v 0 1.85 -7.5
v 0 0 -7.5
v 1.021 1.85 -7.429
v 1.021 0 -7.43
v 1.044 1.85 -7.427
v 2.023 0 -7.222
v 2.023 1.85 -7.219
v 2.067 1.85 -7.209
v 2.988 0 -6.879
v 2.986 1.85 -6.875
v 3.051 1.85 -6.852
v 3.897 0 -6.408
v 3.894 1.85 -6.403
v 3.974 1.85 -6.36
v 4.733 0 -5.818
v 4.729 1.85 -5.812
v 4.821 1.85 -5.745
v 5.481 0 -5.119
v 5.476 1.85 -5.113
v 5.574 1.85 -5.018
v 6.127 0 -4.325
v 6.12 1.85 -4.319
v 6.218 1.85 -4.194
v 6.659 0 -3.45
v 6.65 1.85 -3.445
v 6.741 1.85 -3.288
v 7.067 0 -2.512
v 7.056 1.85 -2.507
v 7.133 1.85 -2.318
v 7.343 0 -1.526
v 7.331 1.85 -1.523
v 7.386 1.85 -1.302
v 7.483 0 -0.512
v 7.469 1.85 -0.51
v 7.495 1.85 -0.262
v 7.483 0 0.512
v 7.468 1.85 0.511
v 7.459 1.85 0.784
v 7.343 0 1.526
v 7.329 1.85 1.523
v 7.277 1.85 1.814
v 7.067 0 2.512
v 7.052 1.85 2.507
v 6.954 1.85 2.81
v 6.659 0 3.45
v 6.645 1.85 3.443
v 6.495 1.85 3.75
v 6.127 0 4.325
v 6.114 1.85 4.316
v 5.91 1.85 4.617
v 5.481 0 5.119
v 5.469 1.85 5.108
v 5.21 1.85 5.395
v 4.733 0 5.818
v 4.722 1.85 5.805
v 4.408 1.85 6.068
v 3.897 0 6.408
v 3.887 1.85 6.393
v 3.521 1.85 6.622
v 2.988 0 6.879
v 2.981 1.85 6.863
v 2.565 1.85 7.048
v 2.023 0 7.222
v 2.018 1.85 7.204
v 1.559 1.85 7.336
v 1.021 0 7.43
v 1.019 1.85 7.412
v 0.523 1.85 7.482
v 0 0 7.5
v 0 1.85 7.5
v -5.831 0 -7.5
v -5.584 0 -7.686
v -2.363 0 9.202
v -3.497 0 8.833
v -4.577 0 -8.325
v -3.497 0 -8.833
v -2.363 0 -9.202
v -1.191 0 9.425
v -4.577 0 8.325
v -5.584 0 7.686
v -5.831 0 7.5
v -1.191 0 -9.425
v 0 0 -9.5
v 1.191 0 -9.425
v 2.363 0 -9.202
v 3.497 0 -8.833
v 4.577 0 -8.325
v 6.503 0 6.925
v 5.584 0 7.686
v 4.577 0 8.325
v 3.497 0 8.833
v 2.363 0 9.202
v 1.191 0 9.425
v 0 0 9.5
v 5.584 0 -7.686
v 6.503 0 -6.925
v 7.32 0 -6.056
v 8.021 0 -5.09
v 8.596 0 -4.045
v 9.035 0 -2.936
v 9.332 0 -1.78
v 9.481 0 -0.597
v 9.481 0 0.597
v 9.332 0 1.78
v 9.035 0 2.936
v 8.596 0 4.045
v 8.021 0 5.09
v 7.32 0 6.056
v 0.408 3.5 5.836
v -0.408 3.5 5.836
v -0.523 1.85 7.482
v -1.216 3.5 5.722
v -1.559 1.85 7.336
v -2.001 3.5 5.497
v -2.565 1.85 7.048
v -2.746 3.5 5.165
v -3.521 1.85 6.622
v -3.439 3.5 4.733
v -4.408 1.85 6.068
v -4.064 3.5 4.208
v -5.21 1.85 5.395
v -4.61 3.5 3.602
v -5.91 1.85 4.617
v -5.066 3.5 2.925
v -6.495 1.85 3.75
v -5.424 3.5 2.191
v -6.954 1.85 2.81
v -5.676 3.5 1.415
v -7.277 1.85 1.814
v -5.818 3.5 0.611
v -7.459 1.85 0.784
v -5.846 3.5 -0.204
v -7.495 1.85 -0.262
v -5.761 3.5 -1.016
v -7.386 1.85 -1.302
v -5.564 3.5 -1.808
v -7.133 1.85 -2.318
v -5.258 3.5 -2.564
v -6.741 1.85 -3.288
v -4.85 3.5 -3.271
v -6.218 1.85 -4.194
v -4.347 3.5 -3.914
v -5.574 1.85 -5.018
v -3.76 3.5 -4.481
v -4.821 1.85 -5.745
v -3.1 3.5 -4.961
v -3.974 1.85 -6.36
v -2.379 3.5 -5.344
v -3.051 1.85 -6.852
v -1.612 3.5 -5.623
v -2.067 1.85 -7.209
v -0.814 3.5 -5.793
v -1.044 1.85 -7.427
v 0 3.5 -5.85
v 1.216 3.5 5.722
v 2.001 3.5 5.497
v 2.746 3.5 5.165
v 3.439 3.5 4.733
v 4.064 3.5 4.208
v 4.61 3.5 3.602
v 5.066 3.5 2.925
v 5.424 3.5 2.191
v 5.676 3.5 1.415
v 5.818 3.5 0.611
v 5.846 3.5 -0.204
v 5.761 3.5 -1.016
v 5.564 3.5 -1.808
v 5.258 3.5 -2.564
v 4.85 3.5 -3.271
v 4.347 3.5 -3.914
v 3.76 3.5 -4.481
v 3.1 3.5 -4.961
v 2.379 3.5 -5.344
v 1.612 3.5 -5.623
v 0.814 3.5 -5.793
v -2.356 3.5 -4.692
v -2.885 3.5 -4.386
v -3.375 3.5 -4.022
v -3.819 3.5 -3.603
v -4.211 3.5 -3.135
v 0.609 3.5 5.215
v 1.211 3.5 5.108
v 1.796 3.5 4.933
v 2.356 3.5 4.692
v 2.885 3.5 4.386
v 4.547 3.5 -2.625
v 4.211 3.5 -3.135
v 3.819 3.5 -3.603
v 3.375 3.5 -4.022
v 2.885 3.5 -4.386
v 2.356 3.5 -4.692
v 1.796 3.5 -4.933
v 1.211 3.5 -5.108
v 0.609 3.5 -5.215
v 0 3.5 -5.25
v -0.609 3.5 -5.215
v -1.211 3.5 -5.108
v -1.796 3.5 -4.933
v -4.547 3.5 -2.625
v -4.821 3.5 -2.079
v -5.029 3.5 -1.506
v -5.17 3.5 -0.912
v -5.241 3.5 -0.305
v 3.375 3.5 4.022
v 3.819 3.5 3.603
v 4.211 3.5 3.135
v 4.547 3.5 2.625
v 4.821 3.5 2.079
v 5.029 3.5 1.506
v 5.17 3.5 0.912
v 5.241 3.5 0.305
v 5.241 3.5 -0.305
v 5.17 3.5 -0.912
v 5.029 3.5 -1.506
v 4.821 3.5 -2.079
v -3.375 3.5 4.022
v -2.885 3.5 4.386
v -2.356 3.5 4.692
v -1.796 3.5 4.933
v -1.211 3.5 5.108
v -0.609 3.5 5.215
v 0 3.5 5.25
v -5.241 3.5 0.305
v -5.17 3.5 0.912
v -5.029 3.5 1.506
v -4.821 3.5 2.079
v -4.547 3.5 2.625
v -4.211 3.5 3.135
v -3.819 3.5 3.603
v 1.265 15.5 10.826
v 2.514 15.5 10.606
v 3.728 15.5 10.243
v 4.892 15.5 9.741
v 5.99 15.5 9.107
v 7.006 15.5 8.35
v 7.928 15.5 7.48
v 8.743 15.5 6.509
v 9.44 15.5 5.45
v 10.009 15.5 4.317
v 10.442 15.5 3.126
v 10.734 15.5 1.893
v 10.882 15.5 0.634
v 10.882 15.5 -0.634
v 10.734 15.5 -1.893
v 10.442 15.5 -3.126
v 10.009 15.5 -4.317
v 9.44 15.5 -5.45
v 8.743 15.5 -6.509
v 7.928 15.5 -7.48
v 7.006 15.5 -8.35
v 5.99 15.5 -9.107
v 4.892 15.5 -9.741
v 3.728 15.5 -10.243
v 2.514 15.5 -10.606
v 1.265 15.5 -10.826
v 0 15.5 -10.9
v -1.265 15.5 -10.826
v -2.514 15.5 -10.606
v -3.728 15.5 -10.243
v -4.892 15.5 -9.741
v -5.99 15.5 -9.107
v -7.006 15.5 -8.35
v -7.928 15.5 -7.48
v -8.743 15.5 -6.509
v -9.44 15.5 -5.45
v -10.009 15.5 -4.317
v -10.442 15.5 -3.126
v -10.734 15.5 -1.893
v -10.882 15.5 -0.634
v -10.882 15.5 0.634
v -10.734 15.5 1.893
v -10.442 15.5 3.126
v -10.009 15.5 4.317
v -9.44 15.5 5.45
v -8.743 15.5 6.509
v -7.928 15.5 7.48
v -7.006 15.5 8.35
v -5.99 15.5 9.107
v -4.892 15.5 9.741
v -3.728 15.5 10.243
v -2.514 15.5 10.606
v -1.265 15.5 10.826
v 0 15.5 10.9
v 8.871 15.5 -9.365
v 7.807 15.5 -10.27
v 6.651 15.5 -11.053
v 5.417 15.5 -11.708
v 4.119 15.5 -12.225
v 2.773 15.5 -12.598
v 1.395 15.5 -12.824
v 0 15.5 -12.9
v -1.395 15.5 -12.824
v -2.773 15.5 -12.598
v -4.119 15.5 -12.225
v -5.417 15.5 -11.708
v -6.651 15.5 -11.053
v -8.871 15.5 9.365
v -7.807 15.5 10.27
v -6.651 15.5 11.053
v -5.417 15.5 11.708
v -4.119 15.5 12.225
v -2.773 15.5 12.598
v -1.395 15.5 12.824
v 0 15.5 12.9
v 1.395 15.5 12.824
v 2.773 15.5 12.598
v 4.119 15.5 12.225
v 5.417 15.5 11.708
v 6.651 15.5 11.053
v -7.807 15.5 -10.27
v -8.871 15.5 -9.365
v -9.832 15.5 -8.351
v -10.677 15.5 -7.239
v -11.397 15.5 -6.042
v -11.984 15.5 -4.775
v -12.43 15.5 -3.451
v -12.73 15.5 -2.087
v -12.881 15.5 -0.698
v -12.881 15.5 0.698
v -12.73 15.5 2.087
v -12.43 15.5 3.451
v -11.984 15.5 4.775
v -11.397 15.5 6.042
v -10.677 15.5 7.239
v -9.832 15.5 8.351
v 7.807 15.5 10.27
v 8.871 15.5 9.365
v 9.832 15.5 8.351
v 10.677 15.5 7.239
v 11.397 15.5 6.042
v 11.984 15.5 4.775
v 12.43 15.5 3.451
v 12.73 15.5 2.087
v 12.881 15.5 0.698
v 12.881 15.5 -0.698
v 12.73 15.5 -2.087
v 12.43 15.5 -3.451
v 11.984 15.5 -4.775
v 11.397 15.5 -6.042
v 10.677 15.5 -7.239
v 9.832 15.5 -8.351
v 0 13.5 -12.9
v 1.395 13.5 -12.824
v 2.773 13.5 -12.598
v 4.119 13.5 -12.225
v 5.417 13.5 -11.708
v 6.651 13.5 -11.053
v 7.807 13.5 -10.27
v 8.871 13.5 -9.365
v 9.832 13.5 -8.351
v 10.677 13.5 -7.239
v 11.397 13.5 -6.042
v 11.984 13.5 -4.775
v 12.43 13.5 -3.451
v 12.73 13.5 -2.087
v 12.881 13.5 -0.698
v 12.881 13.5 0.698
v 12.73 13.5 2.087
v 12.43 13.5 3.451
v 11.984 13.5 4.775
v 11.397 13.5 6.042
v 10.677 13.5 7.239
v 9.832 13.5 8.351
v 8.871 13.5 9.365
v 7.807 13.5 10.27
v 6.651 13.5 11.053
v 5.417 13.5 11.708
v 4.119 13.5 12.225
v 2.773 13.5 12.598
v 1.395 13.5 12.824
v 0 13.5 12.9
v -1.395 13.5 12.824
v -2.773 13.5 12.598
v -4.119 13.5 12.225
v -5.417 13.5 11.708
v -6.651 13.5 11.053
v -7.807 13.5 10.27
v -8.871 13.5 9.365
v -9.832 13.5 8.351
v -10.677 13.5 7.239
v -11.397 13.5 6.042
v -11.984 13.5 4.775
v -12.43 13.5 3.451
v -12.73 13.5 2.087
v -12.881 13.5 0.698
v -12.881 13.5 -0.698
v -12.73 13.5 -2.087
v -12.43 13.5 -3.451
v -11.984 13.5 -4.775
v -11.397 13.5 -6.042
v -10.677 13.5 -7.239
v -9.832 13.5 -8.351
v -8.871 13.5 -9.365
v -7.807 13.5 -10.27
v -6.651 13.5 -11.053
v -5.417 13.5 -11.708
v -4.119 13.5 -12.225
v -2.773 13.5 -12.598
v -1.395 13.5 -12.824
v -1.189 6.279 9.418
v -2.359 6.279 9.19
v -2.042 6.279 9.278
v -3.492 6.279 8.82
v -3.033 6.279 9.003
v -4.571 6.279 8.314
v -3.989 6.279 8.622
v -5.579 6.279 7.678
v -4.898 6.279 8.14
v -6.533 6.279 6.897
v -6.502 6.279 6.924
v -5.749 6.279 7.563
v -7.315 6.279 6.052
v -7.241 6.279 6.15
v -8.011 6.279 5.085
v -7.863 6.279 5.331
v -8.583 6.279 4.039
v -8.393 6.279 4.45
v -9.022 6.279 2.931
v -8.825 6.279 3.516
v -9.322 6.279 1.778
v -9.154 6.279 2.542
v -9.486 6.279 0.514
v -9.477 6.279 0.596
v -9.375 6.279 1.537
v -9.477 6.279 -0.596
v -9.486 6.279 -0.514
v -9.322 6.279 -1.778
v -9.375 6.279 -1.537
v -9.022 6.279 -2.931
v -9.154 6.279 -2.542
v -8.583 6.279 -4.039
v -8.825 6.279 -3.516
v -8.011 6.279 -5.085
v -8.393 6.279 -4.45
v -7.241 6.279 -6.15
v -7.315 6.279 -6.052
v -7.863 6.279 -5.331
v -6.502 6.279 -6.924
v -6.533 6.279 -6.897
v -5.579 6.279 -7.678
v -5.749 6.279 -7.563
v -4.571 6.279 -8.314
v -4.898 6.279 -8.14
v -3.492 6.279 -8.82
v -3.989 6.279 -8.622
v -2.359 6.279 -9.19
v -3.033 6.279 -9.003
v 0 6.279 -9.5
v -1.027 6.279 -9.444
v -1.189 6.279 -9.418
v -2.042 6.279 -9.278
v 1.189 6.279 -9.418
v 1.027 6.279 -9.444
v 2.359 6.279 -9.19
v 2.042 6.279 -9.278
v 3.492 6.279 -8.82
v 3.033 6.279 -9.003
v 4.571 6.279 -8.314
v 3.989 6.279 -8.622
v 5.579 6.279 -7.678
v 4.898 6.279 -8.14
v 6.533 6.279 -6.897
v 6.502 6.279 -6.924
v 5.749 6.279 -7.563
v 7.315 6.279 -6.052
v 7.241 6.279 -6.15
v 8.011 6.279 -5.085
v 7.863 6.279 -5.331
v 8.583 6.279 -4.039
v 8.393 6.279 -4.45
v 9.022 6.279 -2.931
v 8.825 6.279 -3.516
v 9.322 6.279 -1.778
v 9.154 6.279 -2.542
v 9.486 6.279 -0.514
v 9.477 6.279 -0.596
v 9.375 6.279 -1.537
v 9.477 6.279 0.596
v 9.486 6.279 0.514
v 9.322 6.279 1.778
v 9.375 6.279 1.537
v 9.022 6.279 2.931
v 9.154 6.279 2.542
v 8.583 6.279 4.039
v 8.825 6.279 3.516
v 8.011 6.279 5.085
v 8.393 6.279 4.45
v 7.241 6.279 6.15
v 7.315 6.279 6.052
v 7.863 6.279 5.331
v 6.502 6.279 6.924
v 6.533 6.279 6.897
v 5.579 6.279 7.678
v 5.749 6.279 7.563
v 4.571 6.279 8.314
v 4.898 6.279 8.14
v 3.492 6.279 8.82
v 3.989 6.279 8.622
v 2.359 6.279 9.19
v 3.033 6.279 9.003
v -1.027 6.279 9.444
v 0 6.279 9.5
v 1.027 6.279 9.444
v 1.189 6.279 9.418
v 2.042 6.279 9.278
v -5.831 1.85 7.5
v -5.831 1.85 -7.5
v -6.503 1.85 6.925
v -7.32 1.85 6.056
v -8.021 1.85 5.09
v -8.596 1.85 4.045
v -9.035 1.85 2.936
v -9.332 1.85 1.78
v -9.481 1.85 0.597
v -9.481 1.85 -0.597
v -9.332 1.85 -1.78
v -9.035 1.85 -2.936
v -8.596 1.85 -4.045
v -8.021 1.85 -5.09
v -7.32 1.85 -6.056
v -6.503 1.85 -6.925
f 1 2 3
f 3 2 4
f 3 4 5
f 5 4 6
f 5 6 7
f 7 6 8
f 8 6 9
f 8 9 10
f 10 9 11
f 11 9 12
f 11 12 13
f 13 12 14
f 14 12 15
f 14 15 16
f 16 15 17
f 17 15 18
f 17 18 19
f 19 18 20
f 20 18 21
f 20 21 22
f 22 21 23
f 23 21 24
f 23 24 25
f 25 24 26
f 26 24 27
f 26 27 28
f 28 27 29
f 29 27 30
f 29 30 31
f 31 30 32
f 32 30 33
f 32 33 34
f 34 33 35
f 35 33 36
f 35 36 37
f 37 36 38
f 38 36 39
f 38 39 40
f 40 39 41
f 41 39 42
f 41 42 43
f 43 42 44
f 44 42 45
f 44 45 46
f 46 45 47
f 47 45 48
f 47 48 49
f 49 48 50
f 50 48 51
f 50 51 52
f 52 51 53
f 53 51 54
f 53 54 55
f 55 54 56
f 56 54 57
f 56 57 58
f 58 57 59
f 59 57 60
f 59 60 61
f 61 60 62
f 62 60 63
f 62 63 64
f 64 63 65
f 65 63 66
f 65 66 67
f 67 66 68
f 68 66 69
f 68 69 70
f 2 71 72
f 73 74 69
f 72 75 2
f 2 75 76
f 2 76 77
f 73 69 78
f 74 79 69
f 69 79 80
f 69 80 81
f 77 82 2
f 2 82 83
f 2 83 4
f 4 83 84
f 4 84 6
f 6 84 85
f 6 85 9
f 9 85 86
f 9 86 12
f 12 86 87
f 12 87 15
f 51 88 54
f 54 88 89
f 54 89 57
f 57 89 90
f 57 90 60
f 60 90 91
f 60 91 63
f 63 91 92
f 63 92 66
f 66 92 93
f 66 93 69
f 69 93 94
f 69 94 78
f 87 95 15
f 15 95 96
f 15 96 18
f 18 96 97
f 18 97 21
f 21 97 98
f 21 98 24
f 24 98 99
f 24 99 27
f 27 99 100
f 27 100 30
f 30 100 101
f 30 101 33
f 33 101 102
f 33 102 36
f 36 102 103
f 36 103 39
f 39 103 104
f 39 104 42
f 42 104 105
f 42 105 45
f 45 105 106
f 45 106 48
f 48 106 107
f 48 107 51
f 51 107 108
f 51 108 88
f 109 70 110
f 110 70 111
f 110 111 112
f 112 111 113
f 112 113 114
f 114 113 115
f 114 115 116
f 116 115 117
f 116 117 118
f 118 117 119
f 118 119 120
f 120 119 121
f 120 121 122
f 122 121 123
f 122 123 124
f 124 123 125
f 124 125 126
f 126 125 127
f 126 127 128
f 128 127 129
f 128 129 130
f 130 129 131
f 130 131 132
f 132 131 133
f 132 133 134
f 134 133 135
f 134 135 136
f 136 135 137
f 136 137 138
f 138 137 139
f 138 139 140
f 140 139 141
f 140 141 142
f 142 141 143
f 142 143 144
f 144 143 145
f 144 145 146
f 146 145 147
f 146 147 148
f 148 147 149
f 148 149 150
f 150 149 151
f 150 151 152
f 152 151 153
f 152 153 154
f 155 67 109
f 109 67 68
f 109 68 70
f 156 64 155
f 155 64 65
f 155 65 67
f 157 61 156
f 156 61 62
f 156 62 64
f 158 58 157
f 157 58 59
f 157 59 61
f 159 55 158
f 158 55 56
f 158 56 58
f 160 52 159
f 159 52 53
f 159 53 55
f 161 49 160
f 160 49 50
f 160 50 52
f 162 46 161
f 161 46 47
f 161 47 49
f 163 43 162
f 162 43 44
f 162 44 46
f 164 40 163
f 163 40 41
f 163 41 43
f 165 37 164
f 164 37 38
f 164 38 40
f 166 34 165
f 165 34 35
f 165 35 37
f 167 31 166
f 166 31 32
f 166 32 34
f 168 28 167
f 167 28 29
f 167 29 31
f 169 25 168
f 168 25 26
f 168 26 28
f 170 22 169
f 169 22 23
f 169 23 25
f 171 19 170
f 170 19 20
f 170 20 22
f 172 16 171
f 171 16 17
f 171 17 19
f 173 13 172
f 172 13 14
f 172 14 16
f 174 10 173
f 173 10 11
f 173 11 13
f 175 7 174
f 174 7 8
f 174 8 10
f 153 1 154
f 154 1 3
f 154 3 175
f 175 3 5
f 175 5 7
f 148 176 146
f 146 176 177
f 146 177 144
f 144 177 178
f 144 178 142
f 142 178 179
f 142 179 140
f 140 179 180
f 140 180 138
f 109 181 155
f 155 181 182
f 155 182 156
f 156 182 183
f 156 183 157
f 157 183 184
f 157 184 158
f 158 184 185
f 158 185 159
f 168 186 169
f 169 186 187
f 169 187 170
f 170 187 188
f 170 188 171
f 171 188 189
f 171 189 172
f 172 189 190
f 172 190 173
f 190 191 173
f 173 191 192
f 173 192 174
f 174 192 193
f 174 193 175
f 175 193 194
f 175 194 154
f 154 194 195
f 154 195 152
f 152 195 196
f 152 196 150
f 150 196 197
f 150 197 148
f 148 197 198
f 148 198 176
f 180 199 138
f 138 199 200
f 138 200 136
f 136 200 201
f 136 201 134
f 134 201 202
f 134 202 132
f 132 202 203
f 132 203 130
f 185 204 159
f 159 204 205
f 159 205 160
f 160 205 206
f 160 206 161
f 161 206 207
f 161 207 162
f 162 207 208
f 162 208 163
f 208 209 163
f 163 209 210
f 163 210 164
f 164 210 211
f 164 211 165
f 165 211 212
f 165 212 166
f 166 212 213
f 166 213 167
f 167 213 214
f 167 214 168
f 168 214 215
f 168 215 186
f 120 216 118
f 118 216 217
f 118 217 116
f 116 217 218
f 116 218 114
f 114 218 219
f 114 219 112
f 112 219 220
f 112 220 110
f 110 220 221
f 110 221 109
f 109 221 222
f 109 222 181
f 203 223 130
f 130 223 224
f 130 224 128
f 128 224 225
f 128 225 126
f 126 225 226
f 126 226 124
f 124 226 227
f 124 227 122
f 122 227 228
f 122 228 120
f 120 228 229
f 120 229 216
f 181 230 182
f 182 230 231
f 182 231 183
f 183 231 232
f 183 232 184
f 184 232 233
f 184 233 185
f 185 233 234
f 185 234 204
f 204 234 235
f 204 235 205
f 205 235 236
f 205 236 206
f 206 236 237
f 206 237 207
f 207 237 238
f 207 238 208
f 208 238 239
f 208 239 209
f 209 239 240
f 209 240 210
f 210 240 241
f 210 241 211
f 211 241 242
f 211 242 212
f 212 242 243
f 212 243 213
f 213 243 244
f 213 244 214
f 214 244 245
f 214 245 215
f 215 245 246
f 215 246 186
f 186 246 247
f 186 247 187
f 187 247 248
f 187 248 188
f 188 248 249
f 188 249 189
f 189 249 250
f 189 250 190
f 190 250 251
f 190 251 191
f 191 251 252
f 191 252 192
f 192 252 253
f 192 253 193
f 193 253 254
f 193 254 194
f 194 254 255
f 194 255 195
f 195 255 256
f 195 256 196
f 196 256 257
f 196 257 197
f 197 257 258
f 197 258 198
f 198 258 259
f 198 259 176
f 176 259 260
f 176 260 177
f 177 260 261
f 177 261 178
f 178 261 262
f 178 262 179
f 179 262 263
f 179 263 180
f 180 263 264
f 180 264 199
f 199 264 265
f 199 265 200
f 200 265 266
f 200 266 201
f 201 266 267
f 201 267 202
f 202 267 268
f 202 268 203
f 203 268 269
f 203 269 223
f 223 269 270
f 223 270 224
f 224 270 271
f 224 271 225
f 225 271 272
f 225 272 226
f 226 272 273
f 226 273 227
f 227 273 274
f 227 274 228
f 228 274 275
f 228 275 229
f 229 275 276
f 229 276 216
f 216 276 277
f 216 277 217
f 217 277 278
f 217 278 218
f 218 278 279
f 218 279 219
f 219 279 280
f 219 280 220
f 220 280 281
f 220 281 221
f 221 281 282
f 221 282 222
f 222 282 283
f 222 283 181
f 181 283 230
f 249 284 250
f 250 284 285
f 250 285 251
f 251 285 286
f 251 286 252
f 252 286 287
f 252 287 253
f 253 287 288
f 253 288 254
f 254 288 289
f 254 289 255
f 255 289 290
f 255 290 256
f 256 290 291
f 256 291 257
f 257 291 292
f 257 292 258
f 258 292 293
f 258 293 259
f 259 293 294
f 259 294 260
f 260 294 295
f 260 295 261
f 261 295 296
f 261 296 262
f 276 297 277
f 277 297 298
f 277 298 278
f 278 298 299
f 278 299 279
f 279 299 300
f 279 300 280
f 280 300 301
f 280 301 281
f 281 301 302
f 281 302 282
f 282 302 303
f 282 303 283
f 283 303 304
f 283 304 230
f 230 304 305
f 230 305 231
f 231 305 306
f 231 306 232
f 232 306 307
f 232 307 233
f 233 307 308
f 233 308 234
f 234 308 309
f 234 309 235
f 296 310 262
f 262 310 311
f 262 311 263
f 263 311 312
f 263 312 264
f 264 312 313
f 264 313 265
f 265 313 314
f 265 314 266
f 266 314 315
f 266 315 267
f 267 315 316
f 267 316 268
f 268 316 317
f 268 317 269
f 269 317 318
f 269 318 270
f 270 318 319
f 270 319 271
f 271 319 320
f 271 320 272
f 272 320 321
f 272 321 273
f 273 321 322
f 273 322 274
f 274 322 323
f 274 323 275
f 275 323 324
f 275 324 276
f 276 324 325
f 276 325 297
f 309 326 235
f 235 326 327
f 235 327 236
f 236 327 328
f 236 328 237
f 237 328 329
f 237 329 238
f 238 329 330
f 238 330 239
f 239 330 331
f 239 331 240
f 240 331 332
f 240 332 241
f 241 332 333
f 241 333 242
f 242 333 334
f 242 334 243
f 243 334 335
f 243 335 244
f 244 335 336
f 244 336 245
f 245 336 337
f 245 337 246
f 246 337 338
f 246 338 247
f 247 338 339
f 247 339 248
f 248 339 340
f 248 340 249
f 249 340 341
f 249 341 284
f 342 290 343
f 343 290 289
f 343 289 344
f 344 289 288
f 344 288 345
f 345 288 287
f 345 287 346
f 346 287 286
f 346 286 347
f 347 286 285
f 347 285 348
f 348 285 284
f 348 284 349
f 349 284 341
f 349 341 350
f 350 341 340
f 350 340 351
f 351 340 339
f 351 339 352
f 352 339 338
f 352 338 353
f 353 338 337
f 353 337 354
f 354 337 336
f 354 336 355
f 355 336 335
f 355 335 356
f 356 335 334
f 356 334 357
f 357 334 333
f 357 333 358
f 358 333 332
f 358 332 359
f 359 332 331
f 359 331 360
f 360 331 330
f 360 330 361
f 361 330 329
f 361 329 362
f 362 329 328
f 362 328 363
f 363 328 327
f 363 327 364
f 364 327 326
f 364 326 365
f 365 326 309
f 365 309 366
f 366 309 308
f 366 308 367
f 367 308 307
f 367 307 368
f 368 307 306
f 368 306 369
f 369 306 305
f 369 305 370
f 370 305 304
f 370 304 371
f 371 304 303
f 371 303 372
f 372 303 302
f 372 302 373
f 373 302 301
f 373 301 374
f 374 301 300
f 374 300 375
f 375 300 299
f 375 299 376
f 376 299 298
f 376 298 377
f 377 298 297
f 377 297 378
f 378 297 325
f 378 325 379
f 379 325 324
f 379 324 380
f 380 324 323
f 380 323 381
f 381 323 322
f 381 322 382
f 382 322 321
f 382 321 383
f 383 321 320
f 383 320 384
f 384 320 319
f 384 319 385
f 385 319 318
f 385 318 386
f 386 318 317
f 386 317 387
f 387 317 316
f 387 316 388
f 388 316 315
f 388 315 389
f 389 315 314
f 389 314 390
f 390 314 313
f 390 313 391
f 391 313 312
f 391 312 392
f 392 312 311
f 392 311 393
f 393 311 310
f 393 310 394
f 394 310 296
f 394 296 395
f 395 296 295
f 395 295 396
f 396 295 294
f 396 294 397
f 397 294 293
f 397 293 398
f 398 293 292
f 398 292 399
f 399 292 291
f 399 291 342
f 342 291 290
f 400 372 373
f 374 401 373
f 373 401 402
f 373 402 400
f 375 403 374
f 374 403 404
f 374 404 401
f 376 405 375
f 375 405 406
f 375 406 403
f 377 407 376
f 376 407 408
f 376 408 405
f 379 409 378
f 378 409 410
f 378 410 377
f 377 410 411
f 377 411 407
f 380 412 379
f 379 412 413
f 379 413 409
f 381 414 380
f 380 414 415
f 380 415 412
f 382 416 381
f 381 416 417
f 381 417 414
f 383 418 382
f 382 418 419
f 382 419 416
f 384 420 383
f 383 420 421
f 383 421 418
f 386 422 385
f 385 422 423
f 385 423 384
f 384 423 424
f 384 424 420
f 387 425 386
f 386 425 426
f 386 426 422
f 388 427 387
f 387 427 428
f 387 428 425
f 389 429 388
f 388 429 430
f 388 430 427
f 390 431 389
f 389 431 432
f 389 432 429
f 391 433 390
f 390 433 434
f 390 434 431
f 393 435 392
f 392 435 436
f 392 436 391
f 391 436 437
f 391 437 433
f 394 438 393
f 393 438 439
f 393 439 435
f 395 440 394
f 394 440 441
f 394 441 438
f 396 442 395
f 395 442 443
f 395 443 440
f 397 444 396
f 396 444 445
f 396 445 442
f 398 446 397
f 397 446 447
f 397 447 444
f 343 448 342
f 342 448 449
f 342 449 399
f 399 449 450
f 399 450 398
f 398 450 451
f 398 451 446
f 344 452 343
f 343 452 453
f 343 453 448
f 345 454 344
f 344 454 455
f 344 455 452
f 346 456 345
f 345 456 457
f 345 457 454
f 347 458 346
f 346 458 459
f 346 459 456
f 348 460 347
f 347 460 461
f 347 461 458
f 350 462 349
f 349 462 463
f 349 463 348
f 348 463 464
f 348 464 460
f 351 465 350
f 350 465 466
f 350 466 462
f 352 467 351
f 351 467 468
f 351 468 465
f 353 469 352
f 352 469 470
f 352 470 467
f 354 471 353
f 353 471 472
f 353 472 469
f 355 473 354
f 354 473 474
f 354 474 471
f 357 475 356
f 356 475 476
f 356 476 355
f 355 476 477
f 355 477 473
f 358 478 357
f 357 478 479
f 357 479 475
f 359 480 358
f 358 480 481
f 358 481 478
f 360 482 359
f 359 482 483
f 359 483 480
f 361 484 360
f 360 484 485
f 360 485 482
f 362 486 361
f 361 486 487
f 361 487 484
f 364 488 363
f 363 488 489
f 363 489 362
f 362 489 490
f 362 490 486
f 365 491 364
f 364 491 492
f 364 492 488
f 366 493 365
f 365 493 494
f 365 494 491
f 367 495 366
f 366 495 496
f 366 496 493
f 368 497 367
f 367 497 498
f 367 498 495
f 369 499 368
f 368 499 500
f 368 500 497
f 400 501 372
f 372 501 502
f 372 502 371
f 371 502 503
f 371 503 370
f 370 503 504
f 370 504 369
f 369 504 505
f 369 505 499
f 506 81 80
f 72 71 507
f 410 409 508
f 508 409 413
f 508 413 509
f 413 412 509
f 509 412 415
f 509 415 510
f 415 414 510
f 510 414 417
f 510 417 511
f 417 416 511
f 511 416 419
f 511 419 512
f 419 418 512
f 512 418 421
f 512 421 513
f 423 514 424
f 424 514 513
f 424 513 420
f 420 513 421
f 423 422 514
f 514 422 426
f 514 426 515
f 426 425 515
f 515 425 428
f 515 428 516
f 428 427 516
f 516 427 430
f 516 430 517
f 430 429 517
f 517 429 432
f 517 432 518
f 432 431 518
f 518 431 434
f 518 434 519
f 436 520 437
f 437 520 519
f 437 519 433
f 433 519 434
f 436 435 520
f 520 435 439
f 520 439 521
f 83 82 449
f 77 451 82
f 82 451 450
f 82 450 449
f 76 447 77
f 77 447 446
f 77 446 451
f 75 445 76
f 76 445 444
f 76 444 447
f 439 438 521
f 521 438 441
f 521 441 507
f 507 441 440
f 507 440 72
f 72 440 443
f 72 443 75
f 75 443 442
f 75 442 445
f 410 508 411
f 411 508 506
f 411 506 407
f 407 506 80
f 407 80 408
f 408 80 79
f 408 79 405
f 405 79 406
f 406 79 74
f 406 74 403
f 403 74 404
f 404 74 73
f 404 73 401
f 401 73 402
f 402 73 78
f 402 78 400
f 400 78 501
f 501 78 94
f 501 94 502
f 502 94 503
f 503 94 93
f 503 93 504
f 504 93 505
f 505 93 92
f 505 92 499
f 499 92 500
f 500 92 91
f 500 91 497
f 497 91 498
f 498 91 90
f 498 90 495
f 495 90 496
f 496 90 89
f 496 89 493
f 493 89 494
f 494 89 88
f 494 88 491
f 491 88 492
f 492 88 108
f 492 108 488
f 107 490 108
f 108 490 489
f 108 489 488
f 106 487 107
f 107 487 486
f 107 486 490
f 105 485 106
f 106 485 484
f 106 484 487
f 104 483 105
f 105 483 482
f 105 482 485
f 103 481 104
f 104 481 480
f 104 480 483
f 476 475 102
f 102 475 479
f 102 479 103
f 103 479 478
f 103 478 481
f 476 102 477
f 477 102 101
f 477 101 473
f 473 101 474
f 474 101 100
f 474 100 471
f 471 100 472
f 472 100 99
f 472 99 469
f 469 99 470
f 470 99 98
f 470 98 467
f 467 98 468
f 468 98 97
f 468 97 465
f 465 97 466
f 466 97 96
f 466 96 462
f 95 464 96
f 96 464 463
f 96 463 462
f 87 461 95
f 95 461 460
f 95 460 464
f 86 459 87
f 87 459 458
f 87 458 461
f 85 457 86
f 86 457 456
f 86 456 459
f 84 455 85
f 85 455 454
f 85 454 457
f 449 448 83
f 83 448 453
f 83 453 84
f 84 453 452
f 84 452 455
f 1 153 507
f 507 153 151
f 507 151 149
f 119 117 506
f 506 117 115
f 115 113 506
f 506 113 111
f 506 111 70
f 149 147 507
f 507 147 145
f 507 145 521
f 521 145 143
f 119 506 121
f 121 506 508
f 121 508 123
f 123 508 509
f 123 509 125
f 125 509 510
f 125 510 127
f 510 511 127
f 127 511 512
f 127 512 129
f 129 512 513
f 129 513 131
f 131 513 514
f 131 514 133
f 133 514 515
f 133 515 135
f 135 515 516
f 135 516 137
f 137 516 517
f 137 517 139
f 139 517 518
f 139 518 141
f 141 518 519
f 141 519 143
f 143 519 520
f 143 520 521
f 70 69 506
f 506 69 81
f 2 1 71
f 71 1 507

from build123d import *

# Parameters (mm, degrees)
CUT_EXTRUDE1_REACH = 14.9
SKETCH2_W          = 15
SKETCH2_H          = 1.85


with BuildPart() as part:
    # Sketch1 → Revolve1 (revolve)
    with BuildSketch(Plane(origin=(0, 0, 0), x_dir=(0, 0, -1), z_dir=(1, 0, 0))):
        Polygon((-7.5, 0), (-7.5, 1.85), (-5.85, 3.5), (-5.25, 3.5), (-10.9, 15.5), (-12.9, 15.5), (-12.9, 13.5), (-9.5, 6.278761062), (-9.5, 0), align=None)
    revolve(axis=Axis((0, 0, 0), (0, 1, 0)))

    # Sketch2 → Cut-Extrude1 (cut, up to next)
    with BuildSketch(Plane(origin=(0, 0, 0), x_dir=(0, 0, -1), z_dir=(1, 0, 0)), mode=Mode.PRIVATE) as cut_extrude1_sk1:
        with Locations((0, 0.925)):
            Rectangle(SKETCH2_W, SKETCH2_H)
    cut_extrude1_tool1 = extrude(cut_extrude1_sk1.sketch, amount=-CUT_EXTRUDE1_REACH, mode=Mode.PRIVATE) & part.part
    add(cut_extrude1_tool1.solids().sort_by_distance((0, 0.925, 0))[0], mode=Mode.SUBTRACT)


solid = part.part
